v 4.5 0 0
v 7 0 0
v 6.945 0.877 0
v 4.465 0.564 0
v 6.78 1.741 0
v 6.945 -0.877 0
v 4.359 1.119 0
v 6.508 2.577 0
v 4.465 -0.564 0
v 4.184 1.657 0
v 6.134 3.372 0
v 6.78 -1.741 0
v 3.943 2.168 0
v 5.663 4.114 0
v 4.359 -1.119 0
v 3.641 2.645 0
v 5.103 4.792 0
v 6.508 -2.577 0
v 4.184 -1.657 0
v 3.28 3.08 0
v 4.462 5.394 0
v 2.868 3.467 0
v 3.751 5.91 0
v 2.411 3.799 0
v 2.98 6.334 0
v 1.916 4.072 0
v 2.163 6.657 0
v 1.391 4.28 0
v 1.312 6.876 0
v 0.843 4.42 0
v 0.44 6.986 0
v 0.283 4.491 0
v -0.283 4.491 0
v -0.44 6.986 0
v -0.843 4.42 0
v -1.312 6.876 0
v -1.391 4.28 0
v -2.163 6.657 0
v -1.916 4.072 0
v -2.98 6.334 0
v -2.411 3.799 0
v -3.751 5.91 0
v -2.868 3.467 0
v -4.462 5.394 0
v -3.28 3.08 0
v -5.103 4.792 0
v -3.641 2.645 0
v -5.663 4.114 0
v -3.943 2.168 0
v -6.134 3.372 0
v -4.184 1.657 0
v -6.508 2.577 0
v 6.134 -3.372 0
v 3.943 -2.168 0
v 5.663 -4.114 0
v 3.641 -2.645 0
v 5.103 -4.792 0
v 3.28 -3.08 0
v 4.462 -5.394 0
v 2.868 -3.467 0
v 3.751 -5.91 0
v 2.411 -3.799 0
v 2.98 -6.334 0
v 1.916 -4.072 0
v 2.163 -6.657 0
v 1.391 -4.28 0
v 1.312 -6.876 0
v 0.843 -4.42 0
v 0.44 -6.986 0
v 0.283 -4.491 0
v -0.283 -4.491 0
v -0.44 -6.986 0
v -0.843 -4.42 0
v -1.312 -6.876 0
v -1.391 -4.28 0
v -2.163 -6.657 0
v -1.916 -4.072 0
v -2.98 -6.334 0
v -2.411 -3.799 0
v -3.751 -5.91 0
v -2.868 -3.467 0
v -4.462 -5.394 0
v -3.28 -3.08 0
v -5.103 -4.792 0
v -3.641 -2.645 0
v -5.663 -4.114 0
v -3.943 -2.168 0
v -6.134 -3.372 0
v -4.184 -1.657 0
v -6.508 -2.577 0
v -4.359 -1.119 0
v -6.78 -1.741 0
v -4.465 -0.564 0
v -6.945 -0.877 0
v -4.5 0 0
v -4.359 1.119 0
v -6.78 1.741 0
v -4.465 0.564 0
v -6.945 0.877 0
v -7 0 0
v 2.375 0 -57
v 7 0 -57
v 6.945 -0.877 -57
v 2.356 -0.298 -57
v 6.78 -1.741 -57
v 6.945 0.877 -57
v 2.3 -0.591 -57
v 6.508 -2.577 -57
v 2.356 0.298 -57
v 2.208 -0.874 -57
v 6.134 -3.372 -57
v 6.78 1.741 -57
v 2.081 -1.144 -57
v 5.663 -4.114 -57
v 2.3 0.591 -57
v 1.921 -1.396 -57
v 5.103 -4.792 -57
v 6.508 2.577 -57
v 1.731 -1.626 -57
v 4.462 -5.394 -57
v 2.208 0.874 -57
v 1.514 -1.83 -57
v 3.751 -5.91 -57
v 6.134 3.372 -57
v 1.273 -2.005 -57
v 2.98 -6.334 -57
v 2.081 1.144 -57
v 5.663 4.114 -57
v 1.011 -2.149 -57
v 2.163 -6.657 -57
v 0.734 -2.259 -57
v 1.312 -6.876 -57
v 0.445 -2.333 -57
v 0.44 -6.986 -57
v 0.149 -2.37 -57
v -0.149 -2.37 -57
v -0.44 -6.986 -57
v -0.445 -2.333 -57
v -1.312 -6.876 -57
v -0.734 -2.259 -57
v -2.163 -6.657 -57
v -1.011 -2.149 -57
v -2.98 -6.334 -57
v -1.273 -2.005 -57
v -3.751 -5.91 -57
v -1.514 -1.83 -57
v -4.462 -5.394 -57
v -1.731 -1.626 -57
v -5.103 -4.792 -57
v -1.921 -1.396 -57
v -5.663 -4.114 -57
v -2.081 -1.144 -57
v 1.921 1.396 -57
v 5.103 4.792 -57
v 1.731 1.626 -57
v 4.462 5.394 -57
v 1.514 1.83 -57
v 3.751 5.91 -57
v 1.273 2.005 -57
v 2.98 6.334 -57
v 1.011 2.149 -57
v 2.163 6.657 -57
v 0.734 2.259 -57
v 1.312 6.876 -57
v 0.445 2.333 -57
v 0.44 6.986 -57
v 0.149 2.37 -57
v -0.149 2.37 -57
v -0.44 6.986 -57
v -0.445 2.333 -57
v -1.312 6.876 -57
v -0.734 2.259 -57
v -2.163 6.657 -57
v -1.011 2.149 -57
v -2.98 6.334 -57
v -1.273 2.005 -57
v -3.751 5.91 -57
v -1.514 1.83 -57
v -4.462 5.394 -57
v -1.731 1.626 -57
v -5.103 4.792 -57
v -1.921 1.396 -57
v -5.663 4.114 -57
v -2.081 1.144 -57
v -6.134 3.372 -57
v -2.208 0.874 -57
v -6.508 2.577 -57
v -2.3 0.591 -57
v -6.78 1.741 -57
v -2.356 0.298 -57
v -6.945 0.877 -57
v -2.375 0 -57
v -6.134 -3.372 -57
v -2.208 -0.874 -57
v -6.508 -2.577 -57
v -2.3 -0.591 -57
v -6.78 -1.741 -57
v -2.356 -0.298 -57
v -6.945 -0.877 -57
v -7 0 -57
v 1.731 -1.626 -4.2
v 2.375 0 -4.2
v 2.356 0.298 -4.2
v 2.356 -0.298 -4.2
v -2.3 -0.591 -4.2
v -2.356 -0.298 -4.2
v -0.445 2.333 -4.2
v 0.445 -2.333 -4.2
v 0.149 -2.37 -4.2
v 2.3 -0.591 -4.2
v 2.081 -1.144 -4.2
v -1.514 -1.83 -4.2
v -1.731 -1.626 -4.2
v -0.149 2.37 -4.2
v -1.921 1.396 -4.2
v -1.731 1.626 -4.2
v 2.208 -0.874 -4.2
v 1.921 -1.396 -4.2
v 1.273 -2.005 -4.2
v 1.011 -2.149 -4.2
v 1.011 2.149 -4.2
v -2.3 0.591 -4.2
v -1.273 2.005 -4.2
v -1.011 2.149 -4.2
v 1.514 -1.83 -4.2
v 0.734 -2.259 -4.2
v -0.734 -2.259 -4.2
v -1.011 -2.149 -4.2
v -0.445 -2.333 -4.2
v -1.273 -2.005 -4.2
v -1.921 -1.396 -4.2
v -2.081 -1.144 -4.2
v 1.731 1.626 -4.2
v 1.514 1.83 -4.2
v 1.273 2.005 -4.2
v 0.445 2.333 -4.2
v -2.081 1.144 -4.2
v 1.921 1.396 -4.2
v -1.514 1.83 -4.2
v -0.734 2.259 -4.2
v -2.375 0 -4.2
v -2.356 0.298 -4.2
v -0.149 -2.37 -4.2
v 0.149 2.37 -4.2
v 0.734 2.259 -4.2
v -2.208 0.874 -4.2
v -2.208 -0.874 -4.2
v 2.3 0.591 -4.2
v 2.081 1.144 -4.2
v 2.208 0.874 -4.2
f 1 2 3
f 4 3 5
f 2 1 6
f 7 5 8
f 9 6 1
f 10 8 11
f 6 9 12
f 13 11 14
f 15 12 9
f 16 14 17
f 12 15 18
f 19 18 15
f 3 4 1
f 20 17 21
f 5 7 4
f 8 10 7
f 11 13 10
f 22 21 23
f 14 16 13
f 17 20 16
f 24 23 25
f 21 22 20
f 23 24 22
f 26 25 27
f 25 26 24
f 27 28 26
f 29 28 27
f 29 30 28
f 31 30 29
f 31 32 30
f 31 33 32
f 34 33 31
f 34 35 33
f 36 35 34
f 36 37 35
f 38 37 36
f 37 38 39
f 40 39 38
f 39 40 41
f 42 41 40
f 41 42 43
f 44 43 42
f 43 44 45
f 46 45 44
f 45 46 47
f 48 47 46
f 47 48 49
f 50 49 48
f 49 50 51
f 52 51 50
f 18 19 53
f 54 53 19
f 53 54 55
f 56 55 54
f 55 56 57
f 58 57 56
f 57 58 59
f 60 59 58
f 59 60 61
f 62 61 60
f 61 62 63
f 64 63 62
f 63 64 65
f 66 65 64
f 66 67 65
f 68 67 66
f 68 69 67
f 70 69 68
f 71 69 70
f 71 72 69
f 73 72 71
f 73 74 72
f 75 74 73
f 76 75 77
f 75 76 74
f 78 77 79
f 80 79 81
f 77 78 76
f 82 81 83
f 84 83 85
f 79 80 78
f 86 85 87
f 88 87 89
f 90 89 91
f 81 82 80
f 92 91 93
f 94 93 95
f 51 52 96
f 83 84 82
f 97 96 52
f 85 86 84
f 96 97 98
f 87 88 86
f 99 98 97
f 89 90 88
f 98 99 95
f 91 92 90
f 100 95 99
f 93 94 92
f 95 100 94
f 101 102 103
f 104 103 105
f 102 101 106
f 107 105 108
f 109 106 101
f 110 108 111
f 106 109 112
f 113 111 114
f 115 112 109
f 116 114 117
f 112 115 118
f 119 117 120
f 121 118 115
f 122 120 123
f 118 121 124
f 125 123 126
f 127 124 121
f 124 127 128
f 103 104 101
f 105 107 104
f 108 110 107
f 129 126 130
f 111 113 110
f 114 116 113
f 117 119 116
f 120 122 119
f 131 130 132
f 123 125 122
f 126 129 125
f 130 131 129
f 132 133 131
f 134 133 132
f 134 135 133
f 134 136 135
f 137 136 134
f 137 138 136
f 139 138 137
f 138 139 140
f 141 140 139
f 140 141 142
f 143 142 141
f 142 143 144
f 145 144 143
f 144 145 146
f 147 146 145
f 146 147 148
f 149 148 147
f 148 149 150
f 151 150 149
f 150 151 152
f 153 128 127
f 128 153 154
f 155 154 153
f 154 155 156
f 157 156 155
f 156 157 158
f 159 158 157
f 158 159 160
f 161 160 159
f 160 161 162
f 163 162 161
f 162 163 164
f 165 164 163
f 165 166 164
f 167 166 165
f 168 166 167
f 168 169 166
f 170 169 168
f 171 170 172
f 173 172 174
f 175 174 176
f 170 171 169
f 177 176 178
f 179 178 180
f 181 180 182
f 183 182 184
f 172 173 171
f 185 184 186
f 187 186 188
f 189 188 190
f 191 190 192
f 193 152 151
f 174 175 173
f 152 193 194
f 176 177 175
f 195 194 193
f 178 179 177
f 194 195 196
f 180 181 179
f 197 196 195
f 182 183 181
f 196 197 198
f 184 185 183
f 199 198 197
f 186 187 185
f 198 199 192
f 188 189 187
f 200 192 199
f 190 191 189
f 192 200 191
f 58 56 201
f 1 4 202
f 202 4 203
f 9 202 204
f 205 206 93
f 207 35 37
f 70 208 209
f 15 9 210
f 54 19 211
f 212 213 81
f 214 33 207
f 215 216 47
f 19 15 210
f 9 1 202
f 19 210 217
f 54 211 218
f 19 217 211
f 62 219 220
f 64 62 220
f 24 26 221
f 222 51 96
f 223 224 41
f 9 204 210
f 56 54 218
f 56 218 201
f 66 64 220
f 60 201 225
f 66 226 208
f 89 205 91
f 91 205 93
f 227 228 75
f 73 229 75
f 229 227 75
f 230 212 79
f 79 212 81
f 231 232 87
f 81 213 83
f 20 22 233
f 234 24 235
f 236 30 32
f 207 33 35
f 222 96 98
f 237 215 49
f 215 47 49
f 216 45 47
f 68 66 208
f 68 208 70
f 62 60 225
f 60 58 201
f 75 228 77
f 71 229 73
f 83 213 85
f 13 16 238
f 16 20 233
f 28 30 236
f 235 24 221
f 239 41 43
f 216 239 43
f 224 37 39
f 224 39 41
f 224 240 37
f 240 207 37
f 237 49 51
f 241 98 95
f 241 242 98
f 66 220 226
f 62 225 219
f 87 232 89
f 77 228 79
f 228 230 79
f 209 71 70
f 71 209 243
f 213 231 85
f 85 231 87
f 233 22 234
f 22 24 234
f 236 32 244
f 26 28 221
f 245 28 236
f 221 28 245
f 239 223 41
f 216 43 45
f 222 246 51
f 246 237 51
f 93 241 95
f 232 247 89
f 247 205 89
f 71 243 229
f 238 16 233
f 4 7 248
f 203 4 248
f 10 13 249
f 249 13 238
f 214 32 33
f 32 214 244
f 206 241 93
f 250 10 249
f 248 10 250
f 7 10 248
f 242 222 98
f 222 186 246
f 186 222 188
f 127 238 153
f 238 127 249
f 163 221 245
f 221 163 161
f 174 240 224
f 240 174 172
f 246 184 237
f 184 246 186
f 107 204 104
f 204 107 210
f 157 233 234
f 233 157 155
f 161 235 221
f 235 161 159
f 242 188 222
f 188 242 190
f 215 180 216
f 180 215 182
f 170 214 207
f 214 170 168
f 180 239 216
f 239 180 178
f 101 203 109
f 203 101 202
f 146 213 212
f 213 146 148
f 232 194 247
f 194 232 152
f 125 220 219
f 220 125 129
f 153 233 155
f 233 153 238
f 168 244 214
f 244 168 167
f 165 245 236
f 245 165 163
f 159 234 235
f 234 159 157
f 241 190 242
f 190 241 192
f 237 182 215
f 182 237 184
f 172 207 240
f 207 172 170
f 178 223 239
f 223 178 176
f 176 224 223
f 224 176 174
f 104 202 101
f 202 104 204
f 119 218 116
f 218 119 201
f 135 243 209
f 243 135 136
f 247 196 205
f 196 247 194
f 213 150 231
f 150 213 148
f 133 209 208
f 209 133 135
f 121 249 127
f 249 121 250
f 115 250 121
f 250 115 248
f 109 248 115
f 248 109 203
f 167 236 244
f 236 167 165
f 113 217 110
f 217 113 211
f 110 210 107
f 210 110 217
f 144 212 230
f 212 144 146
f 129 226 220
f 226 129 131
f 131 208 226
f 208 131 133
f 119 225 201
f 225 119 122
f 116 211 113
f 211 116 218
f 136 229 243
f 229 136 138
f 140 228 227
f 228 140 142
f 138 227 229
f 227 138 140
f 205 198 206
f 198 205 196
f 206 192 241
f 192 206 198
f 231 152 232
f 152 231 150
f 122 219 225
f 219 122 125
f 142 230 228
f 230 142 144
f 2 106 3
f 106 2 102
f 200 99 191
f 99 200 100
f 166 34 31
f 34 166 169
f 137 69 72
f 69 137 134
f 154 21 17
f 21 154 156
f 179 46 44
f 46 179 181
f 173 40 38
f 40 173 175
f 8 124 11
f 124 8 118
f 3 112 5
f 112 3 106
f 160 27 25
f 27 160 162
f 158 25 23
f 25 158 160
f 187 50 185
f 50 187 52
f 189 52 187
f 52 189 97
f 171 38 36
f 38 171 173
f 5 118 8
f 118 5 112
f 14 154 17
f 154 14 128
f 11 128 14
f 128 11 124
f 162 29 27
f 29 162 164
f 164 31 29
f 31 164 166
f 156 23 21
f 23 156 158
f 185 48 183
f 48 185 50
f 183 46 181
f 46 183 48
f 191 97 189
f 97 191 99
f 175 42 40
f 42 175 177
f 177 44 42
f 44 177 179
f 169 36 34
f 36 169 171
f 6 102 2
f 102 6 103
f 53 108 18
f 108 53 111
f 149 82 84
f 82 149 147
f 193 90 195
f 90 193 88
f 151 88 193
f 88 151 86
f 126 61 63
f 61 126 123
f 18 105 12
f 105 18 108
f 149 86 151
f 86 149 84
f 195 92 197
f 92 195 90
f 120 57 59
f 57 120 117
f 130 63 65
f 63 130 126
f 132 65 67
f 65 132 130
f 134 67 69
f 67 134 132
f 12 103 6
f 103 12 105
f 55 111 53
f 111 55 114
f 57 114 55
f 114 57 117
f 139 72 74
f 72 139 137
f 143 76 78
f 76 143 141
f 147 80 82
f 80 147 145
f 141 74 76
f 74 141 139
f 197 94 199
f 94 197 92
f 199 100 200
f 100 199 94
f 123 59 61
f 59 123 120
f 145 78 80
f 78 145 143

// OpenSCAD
$fn = 50;


difference() {
	union() {
		translate(v = [0, 0, -57.0000000000]) {
			cylinder(h = 57, r = 7.0000000000);
		}
		cylinder(h = 0, r = 16.0000000000);
	}
	union() {
		translate(v = [0, 0, 0]) {
			rotate(a = [0, 0, 0]) {
				difference() {
					union() {
						#translate(v = [0, 0, -57.0000000000]) {
							cylinder(h = 57, r = 2.2500000000);
						}
						#translate(v = [0, 0, -4.2000000000]) {
							cylinder(h = 4.2000000000, r1 = 2.3750000000, r2 = 4.5000000000);
						}
						#translate(v = [0, 0, -57.0000000000]) {
							cylinder(h = 57, r = 2.3750000000);
						}
						#translate(v = [0, 0, -57.0000000000]) {
							cylinder(h = 57, r = 2.2500000000);
						}
					}
					union();
				}
			}
		}
	}
}
